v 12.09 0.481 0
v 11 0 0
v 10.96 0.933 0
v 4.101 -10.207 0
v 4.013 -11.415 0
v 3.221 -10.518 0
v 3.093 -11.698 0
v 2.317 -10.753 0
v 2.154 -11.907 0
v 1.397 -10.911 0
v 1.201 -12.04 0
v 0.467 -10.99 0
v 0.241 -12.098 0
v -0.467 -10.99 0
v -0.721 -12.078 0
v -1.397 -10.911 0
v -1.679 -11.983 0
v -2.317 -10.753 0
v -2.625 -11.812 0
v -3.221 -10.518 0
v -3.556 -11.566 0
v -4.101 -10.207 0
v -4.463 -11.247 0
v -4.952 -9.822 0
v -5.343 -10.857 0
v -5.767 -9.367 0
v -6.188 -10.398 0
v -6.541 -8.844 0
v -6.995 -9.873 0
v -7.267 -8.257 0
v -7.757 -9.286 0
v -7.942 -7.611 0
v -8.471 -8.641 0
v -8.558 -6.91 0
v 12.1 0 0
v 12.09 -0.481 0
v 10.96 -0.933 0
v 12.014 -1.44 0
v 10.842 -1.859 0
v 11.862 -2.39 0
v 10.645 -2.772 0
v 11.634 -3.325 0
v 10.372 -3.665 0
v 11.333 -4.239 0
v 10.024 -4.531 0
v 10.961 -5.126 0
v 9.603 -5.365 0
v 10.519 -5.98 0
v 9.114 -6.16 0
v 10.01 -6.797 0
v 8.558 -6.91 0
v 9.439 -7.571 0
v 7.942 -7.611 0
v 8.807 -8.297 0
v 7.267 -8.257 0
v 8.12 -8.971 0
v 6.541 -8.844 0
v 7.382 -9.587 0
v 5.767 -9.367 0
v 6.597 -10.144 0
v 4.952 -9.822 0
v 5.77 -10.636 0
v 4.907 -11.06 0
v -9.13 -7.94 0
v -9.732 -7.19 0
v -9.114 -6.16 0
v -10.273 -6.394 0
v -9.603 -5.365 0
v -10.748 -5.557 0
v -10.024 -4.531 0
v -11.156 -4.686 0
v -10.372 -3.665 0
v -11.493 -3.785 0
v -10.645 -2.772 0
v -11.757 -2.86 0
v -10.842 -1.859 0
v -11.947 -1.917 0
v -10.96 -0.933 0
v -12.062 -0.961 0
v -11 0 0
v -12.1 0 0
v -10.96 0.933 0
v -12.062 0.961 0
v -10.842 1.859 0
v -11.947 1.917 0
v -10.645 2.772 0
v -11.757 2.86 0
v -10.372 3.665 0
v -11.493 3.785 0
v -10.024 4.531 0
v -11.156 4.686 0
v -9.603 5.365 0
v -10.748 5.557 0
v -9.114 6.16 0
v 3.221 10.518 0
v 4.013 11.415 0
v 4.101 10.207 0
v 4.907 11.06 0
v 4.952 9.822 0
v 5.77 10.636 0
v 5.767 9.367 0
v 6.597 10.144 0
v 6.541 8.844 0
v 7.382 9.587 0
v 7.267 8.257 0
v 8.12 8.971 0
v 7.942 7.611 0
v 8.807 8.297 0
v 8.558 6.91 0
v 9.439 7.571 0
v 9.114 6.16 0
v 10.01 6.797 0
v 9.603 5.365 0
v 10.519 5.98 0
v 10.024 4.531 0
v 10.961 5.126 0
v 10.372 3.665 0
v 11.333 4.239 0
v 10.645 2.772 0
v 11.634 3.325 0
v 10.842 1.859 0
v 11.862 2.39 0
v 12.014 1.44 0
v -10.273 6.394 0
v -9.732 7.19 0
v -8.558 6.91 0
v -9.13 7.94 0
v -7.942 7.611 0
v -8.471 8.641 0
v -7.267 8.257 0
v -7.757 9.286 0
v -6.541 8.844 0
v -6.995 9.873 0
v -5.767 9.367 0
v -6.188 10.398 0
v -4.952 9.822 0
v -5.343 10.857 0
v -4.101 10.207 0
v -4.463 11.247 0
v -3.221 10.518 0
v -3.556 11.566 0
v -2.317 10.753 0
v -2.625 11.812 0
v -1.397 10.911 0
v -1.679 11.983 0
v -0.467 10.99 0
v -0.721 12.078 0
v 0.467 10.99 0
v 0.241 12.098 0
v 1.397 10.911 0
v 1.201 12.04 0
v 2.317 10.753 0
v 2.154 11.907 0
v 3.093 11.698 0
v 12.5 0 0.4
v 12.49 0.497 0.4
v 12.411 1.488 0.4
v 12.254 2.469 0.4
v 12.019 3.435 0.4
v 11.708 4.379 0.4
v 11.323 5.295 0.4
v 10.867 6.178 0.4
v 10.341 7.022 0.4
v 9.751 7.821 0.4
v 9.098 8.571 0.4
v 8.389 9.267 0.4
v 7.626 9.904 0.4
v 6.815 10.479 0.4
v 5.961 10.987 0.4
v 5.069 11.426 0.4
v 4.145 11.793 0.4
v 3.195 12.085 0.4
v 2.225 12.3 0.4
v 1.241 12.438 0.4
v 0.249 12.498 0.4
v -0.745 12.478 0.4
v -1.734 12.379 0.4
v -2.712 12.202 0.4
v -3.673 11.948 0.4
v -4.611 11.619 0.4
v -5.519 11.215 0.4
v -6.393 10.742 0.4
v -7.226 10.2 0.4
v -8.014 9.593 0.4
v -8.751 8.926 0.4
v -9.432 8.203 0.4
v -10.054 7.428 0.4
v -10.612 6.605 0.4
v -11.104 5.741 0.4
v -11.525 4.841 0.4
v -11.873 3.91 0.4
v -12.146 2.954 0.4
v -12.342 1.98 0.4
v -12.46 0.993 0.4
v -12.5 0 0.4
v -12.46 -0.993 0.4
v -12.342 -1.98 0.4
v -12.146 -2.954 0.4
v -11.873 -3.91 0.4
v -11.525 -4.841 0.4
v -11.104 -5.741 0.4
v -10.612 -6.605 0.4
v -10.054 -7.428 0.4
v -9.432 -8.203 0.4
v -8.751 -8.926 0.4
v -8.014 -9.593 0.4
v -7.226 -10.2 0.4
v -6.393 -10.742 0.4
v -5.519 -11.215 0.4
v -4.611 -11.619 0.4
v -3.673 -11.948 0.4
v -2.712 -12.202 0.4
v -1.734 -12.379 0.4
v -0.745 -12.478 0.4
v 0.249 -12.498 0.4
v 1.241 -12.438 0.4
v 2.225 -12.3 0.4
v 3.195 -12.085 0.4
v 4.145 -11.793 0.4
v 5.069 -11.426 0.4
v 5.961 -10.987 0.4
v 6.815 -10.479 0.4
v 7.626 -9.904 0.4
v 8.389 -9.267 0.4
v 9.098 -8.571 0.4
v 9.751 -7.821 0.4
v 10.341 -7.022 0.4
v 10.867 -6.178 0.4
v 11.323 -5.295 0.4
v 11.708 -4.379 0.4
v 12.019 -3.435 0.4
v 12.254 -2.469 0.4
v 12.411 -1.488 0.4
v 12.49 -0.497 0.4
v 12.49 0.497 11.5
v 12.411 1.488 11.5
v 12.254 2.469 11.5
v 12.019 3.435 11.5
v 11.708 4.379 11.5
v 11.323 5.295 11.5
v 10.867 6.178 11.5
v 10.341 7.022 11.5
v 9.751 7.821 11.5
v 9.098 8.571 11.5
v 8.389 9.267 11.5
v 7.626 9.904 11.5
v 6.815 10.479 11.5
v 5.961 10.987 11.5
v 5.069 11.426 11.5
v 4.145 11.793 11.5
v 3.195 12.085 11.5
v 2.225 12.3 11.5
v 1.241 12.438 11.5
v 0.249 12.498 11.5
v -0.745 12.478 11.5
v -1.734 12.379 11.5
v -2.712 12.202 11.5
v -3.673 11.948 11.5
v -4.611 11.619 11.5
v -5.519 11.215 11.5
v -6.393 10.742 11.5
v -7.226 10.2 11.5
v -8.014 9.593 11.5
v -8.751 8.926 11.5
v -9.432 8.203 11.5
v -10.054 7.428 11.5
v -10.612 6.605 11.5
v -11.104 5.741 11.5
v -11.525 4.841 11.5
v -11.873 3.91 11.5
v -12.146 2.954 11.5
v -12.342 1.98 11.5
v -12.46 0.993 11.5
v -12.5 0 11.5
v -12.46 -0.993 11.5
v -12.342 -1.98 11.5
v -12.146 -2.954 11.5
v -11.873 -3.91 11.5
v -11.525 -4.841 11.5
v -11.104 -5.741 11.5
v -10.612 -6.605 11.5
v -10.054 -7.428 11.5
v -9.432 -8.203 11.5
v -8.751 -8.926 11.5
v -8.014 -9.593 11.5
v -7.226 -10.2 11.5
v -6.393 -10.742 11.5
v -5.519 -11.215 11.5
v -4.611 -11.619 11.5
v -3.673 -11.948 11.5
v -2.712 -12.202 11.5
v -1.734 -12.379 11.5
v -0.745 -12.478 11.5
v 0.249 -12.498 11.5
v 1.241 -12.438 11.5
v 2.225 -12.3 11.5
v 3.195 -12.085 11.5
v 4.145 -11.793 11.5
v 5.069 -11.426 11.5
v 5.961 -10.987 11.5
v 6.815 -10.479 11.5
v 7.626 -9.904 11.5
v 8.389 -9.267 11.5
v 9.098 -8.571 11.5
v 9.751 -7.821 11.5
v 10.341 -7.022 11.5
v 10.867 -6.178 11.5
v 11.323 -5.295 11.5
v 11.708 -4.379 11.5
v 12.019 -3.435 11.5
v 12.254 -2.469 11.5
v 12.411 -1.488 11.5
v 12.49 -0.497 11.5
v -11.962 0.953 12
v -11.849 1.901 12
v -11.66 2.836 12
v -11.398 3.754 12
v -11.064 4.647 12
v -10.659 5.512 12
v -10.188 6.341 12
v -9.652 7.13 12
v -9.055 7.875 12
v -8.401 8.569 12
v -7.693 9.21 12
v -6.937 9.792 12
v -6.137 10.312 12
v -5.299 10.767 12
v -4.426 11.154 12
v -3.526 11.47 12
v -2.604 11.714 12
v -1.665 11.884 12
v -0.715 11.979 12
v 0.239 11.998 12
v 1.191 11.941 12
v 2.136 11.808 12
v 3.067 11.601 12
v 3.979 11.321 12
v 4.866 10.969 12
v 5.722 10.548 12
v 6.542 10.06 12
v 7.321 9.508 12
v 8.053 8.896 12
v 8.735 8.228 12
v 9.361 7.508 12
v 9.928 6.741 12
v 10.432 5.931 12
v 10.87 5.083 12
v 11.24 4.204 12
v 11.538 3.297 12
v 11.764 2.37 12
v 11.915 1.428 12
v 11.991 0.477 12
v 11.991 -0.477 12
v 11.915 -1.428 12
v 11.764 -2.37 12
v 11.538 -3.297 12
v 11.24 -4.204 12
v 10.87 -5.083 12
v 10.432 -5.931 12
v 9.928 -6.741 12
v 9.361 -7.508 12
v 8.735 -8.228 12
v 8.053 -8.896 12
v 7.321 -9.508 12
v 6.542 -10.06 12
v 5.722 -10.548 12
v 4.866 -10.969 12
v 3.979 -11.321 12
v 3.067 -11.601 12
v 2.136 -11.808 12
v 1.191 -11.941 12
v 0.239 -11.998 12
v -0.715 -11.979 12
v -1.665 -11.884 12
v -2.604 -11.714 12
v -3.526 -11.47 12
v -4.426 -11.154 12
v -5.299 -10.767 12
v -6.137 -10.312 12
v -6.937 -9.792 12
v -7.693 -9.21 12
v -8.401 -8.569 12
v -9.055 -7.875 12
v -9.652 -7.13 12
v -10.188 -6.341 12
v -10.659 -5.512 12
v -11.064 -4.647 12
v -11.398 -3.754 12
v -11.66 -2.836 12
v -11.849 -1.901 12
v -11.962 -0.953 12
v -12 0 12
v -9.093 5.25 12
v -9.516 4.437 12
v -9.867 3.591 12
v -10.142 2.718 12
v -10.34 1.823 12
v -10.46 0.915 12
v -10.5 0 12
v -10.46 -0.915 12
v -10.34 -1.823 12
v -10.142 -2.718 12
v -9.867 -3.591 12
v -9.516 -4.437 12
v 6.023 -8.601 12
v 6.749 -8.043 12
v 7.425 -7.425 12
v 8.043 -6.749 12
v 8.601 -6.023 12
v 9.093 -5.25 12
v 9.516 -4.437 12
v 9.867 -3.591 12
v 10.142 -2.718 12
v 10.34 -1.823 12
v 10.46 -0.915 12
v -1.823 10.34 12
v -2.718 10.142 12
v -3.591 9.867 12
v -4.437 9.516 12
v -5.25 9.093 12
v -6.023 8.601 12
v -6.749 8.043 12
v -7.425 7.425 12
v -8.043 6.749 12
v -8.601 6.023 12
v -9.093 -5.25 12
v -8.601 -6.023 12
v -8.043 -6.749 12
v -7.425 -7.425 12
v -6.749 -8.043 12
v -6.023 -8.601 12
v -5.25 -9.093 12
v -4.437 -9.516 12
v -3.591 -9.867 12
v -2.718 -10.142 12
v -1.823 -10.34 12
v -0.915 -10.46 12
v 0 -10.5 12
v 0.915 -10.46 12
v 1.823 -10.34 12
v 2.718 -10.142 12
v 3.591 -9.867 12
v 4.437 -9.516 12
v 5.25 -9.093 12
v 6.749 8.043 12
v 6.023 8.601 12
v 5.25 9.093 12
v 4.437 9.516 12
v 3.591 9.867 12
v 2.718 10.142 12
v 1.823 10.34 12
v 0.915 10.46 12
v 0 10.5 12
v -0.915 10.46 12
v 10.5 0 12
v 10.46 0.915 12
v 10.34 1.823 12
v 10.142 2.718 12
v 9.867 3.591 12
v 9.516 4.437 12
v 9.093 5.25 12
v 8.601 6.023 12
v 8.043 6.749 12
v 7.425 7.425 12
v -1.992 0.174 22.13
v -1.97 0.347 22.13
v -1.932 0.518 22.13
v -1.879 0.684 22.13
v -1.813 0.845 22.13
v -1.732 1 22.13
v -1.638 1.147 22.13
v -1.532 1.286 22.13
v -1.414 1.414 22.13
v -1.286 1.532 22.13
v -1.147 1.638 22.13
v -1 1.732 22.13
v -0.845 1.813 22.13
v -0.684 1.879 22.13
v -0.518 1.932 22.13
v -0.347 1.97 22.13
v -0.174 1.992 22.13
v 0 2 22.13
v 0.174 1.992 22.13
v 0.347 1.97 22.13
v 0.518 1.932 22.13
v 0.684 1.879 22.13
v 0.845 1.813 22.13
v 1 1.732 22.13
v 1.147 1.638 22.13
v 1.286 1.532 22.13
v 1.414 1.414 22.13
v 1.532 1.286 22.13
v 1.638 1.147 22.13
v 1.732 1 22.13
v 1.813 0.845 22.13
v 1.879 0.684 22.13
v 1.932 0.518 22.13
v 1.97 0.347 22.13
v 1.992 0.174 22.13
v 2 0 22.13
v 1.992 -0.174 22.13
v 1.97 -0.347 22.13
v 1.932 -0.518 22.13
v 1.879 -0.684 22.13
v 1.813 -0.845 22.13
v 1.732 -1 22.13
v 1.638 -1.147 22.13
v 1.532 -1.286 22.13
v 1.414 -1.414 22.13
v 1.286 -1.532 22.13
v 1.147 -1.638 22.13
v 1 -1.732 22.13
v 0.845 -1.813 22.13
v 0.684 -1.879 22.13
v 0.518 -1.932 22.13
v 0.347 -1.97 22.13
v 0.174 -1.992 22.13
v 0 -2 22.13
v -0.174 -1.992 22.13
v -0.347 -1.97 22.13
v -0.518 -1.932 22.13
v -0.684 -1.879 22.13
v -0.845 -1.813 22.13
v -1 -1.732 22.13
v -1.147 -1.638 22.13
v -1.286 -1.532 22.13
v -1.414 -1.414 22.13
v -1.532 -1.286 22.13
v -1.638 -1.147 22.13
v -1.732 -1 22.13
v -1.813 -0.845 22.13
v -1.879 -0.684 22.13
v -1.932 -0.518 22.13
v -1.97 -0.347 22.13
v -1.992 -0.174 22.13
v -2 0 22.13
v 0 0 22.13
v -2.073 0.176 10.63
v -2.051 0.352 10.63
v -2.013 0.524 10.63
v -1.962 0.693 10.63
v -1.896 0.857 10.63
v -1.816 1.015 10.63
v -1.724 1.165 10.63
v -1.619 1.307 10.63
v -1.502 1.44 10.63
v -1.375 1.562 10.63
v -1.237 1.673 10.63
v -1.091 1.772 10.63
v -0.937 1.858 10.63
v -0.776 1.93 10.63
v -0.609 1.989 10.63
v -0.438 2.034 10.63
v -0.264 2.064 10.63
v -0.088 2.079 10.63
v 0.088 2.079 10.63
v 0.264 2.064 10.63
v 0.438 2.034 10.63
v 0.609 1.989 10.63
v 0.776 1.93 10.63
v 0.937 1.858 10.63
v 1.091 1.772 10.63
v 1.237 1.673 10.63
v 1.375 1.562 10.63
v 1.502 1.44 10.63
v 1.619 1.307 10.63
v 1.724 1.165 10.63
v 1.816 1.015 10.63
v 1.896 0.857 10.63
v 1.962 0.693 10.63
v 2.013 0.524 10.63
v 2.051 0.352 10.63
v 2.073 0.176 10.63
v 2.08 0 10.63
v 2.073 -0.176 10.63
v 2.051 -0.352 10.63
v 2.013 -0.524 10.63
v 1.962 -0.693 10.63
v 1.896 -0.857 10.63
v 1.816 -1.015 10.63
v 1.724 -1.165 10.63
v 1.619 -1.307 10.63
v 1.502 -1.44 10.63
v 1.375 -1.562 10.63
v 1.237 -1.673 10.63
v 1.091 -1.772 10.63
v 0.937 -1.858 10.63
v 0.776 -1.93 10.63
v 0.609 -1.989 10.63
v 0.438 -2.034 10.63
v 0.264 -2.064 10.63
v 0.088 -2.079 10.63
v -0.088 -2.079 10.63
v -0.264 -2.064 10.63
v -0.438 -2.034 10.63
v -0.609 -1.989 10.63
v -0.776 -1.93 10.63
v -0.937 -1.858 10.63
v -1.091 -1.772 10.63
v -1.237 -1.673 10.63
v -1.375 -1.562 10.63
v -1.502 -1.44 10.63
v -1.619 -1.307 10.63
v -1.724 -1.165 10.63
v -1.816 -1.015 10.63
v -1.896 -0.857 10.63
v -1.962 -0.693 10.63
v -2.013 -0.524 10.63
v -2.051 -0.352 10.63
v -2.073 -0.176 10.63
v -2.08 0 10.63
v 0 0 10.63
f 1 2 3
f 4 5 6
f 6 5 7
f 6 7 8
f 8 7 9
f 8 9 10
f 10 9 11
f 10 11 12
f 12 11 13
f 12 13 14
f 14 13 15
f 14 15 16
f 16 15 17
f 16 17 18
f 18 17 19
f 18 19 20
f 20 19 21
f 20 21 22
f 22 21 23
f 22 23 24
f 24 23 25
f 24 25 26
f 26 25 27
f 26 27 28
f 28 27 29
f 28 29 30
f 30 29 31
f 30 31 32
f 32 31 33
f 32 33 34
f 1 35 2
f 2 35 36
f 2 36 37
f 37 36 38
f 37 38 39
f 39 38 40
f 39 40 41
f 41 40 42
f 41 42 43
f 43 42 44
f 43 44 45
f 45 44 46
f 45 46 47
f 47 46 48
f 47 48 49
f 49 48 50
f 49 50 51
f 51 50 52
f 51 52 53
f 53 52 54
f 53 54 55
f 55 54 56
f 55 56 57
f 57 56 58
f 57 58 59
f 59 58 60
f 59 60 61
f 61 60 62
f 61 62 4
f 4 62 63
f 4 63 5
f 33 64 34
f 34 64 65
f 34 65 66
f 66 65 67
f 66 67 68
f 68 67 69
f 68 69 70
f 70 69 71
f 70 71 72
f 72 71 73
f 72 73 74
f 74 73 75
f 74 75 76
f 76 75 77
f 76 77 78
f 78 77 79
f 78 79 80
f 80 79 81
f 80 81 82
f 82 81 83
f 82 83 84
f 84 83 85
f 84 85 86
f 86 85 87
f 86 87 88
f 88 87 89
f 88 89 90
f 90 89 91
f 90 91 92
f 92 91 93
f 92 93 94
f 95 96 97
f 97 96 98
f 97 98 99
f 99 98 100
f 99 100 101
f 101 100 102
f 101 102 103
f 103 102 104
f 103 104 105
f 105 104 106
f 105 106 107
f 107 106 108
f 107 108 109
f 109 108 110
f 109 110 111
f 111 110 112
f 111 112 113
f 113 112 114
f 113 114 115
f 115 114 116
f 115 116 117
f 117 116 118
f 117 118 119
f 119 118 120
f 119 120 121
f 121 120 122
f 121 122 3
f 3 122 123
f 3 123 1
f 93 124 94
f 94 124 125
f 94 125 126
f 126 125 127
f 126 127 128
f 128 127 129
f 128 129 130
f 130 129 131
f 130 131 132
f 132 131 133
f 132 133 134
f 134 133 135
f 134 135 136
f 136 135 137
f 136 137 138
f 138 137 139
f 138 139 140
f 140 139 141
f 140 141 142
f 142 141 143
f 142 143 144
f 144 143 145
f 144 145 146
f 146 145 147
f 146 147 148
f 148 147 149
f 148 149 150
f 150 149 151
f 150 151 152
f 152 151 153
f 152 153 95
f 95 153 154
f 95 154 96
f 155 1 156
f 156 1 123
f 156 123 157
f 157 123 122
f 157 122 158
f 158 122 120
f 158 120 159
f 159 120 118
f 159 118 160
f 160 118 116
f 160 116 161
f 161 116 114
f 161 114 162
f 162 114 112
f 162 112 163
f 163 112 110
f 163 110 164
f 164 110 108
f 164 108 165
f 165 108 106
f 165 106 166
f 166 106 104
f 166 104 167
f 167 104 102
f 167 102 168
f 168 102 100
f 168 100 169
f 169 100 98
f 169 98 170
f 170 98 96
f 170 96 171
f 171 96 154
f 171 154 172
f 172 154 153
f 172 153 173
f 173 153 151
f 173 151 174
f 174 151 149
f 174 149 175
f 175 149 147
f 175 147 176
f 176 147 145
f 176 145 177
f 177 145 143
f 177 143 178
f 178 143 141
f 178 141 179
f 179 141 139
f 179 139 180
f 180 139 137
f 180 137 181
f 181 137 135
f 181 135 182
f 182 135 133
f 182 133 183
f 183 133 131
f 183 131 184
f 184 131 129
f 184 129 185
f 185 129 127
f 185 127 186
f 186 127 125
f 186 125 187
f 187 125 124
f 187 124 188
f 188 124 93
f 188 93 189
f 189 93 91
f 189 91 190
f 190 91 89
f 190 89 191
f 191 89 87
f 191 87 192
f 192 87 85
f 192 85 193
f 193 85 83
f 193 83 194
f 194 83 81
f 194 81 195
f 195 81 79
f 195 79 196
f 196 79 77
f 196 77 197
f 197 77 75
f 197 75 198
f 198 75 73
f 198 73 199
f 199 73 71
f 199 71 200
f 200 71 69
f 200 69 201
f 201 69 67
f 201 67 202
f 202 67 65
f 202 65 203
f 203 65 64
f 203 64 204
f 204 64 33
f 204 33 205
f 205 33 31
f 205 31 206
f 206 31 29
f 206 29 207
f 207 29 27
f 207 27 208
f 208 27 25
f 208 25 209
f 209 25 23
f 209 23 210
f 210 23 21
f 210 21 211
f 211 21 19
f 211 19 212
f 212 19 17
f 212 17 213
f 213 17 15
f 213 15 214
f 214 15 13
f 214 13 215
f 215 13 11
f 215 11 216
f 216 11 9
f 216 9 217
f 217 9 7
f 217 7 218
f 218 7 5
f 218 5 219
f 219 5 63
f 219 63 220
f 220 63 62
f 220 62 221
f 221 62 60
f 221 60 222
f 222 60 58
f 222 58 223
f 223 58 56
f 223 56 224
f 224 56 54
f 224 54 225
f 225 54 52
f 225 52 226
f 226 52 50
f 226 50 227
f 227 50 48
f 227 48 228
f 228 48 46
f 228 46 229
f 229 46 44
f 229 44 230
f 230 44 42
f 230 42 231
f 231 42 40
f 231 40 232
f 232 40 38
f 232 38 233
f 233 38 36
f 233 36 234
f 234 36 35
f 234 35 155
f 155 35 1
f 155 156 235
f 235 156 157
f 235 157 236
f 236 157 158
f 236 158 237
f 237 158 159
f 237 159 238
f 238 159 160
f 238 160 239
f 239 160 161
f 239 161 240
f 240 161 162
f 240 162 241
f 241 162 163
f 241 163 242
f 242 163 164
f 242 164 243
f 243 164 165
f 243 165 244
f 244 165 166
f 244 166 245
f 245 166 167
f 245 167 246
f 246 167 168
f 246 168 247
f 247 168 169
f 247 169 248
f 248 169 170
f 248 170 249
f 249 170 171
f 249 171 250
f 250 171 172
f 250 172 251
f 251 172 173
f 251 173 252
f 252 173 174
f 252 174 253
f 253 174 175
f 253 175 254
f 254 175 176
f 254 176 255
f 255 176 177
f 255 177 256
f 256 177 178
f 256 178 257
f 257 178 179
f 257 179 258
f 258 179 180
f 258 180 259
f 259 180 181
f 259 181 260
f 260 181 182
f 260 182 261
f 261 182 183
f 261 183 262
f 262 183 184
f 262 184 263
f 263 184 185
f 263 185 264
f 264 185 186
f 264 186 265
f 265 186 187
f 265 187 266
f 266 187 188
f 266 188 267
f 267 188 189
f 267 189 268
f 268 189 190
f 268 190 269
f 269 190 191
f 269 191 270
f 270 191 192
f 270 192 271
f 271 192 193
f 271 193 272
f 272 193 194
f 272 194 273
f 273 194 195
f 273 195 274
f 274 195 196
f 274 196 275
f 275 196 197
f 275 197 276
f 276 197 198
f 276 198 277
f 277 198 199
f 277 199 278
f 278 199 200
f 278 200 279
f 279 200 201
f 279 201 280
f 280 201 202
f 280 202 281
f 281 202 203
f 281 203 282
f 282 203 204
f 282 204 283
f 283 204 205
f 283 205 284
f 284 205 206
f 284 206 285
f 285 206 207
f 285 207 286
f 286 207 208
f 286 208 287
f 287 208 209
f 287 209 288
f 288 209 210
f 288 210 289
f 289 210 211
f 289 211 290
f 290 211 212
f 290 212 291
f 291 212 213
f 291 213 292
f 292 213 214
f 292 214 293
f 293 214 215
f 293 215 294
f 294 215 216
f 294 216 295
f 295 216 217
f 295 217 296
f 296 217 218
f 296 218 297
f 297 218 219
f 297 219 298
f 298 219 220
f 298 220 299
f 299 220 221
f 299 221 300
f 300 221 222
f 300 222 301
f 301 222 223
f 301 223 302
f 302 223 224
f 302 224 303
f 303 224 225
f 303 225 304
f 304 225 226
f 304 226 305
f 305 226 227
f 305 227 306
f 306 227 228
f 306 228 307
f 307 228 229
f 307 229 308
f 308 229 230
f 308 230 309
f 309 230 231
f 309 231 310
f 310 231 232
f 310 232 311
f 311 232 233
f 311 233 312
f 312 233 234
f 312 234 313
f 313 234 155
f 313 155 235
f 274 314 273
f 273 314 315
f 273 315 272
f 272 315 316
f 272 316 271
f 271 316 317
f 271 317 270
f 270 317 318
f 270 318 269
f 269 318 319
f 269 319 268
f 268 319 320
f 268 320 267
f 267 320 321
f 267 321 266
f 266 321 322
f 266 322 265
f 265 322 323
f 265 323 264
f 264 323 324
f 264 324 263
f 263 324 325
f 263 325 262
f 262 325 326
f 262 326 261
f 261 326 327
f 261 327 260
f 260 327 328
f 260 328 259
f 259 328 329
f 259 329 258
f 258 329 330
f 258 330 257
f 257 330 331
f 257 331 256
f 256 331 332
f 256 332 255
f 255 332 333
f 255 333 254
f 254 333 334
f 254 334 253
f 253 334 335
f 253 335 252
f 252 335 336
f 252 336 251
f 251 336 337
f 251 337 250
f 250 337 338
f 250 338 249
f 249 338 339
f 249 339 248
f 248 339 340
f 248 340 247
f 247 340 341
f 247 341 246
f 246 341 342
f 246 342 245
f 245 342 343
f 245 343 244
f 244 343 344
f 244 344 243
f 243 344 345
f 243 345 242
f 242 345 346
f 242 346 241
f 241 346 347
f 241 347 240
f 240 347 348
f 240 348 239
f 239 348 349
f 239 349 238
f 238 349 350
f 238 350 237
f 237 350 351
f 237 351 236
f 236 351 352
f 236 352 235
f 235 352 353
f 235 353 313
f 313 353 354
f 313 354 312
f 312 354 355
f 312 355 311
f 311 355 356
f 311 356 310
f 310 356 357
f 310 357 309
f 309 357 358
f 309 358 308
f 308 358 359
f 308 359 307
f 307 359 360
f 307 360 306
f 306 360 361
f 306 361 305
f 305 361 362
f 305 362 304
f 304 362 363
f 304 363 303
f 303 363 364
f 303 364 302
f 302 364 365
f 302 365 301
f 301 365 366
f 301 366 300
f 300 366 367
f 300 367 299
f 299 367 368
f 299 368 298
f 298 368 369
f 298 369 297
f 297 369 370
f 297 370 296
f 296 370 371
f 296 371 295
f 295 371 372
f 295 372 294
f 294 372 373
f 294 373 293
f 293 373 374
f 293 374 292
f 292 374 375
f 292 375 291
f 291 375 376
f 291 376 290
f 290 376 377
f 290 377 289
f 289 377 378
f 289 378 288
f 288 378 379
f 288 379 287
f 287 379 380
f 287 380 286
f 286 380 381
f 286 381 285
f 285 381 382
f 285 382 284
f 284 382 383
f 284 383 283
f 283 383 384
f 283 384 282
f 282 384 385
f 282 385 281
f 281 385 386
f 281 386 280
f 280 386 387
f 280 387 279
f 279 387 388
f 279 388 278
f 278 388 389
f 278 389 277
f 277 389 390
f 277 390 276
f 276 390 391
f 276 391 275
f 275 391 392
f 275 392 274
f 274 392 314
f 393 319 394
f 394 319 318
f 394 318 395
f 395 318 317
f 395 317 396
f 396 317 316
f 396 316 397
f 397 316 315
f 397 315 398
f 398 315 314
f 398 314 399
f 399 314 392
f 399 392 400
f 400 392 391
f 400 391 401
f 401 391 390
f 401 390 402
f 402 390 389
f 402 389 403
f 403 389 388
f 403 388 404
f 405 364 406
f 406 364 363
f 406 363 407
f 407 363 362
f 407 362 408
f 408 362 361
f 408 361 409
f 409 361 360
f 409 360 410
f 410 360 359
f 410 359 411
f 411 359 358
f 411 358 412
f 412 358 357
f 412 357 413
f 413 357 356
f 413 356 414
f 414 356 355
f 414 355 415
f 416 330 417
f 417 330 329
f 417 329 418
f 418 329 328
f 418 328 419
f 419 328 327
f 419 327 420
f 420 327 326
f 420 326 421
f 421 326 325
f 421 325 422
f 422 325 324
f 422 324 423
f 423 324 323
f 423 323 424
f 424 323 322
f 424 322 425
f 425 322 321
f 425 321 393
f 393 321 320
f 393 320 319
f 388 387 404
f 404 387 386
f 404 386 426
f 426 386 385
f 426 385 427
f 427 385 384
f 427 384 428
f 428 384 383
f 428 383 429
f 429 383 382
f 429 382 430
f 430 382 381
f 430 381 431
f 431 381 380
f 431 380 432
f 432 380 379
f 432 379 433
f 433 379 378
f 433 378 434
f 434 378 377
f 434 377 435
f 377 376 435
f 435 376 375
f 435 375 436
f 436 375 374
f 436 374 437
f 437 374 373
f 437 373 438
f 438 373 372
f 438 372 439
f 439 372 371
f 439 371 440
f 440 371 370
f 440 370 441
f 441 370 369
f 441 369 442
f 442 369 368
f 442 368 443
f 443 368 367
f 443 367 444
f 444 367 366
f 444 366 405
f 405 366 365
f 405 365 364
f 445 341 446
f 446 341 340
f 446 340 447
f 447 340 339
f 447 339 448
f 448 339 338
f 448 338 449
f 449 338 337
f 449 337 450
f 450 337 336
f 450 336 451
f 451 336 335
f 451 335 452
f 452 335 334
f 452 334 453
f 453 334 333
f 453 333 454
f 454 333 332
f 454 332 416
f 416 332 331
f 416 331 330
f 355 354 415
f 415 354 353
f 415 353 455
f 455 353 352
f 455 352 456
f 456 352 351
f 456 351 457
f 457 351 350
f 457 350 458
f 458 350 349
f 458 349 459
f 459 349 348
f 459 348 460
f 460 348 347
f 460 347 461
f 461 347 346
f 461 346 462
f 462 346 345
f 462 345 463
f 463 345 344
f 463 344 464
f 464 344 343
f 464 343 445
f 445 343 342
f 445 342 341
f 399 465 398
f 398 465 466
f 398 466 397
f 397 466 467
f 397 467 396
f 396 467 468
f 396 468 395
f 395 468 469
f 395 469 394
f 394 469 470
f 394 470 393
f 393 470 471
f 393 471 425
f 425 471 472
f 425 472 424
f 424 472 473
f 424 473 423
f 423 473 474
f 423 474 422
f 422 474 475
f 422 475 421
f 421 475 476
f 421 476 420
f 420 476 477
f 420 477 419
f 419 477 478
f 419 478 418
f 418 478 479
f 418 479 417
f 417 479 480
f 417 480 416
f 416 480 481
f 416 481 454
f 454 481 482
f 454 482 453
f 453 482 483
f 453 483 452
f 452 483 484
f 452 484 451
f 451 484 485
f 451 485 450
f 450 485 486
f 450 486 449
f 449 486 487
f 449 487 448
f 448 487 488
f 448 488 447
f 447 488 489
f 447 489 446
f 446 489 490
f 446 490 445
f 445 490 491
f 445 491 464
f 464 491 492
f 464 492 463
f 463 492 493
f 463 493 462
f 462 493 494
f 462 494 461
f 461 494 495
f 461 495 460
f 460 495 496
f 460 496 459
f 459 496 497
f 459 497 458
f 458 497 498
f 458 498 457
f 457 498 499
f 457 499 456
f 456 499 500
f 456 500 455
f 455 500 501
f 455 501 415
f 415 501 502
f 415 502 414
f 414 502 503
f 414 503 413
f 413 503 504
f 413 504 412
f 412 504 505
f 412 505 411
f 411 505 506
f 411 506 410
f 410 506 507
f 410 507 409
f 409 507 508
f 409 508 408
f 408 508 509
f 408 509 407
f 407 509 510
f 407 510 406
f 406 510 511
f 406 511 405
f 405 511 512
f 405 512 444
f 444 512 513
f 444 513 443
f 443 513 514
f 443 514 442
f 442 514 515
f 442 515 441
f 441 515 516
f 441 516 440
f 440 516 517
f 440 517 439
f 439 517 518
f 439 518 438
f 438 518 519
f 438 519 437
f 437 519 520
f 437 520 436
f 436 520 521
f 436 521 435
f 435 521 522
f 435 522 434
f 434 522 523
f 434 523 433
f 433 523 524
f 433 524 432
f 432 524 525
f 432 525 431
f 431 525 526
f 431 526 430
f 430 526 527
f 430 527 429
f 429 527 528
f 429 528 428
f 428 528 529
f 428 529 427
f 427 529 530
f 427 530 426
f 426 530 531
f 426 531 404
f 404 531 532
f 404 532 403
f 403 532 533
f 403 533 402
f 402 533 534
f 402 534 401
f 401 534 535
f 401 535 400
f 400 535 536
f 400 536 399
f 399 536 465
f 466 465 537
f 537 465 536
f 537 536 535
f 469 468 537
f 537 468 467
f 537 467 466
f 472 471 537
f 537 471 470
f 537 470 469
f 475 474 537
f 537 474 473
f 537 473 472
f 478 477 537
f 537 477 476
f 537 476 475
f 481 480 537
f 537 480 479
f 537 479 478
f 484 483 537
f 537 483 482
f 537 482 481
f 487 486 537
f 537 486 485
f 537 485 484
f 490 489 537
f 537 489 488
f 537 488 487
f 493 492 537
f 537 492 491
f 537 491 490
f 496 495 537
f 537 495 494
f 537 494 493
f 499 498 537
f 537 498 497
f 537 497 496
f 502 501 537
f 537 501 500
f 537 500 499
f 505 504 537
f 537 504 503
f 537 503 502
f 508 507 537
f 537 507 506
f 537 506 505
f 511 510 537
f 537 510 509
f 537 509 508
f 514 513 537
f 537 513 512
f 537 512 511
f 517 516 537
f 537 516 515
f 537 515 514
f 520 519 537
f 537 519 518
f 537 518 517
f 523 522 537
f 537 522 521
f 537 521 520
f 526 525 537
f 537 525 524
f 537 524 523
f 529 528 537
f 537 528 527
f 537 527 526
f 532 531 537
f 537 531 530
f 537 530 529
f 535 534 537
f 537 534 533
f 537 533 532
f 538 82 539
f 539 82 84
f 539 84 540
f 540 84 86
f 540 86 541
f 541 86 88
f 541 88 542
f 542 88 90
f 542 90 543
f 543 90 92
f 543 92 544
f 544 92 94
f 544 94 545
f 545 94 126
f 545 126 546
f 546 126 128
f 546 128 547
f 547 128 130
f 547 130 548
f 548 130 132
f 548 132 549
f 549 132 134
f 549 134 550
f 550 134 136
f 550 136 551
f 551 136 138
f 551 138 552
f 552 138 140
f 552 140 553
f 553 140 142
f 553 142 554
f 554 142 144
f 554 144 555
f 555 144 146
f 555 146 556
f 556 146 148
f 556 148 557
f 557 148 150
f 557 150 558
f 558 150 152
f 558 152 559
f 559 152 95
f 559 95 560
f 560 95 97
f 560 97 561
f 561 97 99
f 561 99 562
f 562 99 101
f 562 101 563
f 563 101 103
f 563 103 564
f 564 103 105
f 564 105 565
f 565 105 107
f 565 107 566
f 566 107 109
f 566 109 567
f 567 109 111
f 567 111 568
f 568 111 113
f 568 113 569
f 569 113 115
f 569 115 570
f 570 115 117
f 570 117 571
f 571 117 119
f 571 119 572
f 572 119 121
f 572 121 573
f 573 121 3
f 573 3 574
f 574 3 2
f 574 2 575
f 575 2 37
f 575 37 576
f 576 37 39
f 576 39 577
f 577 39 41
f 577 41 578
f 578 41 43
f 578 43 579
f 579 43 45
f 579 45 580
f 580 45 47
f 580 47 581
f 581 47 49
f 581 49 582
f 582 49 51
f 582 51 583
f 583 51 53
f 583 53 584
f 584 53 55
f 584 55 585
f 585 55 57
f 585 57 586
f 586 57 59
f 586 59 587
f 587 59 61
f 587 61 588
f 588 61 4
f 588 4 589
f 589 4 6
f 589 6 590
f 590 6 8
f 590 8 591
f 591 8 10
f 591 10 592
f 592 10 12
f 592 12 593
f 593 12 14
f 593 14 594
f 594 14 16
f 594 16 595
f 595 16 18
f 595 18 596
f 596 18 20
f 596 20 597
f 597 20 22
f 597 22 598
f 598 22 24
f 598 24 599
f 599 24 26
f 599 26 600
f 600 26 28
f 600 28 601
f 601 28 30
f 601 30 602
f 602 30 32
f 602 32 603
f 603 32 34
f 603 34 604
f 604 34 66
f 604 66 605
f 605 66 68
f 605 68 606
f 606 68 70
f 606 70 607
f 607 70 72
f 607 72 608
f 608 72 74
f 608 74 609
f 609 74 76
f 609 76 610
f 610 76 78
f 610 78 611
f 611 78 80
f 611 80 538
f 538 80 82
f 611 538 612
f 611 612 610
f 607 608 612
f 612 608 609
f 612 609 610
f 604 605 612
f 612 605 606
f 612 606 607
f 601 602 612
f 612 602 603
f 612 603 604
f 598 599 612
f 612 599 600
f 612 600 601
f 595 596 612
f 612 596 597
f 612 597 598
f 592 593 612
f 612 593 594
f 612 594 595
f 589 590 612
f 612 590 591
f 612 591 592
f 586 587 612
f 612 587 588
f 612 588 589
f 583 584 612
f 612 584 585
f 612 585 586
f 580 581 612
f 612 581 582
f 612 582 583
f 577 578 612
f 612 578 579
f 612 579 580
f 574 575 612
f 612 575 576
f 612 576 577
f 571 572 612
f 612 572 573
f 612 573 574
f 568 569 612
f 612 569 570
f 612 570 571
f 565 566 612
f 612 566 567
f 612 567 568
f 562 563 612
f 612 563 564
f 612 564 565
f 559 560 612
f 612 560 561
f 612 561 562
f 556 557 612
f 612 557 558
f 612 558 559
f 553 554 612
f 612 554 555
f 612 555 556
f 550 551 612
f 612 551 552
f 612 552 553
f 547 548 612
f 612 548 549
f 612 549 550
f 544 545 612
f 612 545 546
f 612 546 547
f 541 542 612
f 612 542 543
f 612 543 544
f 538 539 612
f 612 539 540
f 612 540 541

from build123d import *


with BuildPart() as part:
    # body_sketch → body (revolve)
    with BuildSketch(Plane(origin=(0, 0, 0), x_dir=(1, 0, 0), z_dir=(0, 1, 0)), mode=Mode.PRIVATE) as body_sk:
        Polygon((0, 0), (12.1, 0), (12.5, -0.4), (12.5, -11.5), (12, -12), (10.5, -12), (2, -22.13), (0, -22.13), align=None)
    revolve(body_sk.sketch.rotate(Axis((0, 0, 0), (0, 0, 1)), 180), axis=Axis((0, 0, 0), (0, 0, 1)))

    # socket_sketch → socket (revolve, cut)
    with BuildSketch(Plane(origin=(0, 0, 0), x_dir=(1, 0, 0), z_dir=(0, 1, 0)), mode=Mode.PRIVATE) as socket_sk:
        Polygon((0, 0.5), (11.419545903, 0.5), (2.080454097, -10.63), (0, -10.63), align=None)
    revolve(socket_sk.sketch.rotate(Axis((0, 0, 0), (0, 0, 1)), 180), axis=Axis((0, 0, 0), (0, 0, 1)), mode=Mode.SUBTRACT)


solid = part.part
